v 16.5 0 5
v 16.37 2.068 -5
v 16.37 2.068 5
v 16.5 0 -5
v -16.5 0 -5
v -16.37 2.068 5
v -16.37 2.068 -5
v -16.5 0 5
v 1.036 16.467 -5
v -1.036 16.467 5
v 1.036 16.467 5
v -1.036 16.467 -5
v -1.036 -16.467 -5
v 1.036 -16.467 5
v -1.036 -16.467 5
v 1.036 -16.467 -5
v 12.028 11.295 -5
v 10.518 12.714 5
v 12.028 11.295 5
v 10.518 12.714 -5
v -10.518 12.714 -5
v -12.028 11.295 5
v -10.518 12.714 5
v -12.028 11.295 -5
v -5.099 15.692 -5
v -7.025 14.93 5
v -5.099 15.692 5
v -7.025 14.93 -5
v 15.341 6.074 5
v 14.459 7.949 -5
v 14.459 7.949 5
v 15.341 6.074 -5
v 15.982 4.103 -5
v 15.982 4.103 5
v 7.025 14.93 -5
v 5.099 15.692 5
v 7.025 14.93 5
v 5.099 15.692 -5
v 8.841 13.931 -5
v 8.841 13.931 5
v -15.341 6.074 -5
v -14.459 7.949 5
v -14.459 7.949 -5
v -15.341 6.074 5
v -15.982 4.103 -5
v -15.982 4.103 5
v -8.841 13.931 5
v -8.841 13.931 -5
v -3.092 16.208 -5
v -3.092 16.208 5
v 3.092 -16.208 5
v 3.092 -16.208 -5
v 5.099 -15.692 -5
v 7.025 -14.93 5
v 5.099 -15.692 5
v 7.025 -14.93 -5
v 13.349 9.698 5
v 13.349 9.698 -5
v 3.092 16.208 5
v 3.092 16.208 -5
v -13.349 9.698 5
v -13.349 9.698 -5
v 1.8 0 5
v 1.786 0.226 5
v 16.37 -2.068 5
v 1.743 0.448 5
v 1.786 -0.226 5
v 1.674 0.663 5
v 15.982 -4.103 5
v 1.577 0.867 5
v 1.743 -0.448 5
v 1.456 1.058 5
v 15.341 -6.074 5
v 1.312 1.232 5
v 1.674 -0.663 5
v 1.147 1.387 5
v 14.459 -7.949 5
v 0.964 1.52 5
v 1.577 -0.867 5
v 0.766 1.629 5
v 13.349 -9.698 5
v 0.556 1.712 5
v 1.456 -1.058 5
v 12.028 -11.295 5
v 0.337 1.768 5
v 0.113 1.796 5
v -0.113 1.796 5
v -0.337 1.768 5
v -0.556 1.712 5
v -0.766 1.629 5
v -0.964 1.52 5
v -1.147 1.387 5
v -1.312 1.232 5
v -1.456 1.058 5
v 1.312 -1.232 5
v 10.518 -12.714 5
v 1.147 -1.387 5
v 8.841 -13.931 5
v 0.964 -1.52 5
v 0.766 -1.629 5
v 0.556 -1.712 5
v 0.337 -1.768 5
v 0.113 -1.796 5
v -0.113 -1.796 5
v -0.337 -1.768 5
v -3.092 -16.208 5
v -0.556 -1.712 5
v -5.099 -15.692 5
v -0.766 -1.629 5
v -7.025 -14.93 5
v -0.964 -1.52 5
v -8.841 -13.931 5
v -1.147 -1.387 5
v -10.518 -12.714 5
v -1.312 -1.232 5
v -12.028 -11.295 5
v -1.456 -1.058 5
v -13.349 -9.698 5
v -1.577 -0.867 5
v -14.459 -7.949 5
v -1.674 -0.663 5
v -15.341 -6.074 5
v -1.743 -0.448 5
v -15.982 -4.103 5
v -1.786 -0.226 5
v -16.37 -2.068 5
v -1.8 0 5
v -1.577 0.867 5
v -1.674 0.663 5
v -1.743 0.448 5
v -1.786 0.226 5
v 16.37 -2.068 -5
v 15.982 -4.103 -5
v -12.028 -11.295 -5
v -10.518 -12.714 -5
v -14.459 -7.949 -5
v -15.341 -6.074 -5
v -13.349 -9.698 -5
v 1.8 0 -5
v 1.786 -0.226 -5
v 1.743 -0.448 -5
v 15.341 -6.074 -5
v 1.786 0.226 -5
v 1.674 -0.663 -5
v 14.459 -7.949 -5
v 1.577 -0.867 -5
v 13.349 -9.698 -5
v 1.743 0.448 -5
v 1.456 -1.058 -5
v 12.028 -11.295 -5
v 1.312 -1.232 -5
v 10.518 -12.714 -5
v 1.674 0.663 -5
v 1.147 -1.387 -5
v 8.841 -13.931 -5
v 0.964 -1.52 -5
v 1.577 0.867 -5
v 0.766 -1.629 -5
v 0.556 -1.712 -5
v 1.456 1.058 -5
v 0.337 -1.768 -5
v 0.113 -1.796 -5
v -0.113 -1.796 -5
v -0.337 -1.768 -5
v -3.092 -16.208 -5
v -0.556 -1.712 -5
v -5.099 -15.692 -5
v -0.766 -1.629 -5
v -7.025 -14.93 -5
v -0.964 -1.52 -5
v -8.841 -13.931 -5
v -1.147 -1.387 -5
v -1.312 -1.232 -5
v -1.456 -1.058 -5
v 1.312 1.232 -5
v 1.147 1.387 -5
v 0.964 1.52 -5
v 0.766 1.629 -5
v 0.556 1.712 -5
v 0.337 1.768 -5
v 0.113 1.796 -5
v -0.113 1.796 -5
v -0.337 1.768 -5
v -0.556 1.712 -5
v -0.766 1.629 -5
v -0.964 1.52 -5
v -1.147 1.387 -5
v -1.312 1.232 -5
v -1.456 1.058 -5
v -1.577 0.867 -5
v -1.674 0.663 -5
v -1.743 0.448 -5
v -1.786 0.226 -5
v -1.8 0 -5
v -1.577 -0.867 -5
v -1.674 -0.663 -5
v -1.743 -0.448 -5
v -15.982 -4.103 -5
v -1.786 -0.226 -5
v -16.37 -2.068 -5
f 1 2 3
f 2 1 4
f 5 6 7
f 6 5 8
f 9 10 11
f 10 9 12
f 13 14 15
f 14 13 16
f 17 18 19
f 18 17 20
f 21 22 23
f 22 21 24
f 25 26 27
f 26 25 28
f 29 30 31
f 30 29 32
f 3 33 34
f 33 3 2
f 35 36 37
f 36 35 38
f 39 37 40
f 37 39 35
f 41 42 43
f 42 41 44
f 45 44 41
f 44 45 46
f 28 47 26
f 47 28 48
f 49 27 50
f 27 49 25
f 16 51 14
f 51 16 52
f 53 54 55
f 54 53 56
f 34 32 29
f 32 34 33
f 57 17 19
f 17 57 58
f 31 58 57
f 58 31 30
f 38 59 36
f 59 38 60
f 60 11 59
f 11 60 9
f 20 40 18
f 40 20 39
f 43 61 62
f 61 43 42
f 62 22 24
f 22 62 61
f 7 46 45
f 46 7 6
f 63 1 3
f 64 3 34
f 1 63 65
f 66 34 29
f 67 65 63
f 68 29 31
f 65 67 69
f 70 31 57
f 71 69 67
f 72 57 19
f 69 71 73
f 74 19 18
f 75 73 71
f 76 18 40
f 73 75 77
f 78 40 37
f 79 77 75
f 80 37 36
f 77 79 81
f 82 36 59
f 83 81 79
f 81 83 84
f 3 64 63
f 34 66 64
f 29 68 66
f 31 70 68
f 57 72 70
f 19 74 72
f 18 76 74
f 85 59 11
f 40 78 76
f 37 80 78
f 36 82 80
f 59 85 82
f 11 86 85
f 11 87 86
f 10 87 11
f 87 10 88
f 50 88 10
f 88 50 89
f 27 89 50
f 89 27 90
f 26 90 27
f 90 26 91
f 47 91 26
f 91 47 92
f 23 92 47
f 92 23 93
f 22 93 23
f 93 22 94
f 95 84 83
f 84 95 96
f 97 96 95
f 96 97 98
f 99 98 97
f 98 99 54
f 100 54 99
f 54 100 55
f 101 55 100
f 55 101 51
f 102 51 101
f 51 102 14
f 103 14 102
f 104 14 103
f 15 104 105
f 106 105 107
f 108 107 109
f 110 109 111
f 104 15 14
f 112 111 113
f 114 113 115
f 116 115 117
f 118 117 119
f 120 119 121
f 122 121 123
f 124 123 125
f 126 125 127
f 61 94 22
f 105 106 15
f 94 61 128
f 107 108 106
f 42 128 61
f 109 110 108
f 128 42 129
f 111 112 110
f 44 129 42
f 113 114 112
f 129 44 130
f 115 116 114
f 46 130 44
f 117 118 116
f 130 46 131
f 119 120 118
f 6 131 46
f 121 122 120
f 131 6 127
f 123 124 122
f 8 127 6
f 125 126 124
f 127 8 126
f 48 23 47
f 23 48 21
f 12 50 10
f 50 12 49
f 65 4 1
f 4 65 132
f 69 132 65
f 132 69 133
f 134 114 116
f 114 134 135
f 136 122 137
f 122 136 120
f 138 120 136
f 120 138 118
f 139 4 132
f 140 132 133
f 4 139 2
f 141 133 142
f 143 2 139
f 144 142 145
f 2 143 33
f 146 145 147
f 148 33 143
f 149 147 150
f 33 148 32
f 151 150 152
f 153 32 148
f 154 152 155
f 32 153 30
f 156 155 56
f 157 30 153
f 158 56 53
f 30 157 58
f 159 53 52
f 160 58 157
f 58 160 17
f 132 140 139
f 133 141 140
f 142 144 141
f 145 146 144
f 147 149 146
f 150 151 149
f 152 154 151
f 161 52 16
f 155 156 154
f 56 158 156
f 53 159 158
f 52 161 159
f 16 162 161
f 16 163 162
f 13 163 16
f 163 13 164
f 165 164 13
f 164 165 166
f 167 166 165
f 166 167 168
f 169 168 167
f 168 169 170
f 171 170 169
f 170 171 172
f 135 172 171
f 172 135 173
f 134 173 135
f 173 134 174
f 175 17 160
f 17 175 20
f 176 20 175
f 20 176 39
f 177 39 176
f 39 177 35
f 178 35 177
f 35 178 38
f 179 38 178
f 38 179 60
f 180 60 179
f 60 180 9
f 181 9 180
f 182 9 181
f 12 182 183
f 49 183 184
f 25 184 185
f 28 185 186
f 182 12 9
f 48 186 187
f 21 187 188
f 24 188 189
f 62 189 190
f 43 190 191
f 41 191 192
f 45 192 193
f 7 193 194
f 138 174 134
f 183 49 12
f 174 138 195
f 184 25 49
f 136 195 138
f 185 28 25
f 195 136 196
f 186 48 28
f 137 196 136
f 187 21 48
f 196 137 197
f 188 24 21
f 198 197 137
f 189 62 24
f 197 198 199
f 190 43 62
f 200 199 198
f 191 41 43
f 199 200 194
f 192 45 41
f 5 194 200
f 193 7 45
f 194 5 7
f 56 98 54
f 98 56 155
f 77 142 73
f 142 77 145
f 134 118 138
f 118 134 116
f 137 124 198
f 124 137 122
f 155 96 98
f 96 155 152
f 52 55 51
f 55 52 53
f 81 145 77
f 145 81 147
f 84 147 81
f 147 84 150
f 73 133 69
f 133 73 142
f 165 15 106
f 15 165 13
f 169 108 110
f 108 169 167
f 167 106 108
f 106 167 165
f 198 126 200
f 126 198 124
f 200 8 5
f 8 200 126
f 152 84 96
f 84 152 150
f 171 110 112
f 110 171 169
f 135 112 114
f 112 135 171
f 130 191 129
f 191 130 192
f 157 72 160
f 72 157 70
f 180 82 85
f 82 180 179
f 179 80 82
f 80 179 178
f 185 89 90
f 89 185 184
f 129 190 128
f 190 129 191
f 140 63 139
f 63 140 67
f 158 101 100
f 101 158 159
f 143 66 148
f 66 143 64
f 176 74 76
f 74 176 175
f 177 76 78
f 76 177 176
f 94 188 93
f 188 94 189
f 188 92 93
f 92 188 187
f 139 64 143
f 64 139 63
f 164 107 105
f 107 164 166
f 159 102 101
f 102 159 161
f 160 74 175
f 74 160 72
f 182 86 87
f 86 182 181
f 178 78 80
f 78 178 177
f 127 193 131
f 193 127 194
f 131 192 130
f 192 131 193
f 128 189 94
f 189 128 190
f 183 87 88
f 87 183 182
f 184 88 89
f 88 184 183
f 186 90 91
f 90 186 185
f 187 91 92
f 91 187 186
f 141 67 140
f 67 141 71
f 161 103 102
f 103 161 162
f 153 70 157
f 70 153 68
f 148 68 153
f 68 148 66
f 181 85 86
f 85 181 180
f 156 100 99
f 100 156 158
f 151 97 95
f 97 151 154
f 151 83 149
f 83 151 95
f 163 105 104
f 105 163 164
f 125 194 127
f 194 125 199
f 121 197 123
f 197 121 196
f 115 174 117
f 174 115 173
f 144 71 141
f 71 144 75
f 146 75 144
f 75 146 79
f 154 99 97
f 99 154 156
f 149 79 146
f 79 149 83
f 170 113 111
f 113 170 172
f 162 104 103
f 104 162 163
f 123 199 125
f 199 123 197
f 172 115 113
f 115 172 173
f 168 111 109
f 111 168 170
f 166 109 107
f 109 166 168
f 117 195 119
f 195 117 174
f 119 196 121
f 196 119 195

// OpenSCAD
$fn = 50;


difference() {
	union() {
		translate(v = [0, 0, -5.0000000000]) {
			cylinder(h = 10, r = 16.5000000000);
		}
	}
	union() {
		translate(v = [0, 0, -100.0000000000]) {
			cylinder(h = 200, r = 1.8000000000);
		}
	}
}
